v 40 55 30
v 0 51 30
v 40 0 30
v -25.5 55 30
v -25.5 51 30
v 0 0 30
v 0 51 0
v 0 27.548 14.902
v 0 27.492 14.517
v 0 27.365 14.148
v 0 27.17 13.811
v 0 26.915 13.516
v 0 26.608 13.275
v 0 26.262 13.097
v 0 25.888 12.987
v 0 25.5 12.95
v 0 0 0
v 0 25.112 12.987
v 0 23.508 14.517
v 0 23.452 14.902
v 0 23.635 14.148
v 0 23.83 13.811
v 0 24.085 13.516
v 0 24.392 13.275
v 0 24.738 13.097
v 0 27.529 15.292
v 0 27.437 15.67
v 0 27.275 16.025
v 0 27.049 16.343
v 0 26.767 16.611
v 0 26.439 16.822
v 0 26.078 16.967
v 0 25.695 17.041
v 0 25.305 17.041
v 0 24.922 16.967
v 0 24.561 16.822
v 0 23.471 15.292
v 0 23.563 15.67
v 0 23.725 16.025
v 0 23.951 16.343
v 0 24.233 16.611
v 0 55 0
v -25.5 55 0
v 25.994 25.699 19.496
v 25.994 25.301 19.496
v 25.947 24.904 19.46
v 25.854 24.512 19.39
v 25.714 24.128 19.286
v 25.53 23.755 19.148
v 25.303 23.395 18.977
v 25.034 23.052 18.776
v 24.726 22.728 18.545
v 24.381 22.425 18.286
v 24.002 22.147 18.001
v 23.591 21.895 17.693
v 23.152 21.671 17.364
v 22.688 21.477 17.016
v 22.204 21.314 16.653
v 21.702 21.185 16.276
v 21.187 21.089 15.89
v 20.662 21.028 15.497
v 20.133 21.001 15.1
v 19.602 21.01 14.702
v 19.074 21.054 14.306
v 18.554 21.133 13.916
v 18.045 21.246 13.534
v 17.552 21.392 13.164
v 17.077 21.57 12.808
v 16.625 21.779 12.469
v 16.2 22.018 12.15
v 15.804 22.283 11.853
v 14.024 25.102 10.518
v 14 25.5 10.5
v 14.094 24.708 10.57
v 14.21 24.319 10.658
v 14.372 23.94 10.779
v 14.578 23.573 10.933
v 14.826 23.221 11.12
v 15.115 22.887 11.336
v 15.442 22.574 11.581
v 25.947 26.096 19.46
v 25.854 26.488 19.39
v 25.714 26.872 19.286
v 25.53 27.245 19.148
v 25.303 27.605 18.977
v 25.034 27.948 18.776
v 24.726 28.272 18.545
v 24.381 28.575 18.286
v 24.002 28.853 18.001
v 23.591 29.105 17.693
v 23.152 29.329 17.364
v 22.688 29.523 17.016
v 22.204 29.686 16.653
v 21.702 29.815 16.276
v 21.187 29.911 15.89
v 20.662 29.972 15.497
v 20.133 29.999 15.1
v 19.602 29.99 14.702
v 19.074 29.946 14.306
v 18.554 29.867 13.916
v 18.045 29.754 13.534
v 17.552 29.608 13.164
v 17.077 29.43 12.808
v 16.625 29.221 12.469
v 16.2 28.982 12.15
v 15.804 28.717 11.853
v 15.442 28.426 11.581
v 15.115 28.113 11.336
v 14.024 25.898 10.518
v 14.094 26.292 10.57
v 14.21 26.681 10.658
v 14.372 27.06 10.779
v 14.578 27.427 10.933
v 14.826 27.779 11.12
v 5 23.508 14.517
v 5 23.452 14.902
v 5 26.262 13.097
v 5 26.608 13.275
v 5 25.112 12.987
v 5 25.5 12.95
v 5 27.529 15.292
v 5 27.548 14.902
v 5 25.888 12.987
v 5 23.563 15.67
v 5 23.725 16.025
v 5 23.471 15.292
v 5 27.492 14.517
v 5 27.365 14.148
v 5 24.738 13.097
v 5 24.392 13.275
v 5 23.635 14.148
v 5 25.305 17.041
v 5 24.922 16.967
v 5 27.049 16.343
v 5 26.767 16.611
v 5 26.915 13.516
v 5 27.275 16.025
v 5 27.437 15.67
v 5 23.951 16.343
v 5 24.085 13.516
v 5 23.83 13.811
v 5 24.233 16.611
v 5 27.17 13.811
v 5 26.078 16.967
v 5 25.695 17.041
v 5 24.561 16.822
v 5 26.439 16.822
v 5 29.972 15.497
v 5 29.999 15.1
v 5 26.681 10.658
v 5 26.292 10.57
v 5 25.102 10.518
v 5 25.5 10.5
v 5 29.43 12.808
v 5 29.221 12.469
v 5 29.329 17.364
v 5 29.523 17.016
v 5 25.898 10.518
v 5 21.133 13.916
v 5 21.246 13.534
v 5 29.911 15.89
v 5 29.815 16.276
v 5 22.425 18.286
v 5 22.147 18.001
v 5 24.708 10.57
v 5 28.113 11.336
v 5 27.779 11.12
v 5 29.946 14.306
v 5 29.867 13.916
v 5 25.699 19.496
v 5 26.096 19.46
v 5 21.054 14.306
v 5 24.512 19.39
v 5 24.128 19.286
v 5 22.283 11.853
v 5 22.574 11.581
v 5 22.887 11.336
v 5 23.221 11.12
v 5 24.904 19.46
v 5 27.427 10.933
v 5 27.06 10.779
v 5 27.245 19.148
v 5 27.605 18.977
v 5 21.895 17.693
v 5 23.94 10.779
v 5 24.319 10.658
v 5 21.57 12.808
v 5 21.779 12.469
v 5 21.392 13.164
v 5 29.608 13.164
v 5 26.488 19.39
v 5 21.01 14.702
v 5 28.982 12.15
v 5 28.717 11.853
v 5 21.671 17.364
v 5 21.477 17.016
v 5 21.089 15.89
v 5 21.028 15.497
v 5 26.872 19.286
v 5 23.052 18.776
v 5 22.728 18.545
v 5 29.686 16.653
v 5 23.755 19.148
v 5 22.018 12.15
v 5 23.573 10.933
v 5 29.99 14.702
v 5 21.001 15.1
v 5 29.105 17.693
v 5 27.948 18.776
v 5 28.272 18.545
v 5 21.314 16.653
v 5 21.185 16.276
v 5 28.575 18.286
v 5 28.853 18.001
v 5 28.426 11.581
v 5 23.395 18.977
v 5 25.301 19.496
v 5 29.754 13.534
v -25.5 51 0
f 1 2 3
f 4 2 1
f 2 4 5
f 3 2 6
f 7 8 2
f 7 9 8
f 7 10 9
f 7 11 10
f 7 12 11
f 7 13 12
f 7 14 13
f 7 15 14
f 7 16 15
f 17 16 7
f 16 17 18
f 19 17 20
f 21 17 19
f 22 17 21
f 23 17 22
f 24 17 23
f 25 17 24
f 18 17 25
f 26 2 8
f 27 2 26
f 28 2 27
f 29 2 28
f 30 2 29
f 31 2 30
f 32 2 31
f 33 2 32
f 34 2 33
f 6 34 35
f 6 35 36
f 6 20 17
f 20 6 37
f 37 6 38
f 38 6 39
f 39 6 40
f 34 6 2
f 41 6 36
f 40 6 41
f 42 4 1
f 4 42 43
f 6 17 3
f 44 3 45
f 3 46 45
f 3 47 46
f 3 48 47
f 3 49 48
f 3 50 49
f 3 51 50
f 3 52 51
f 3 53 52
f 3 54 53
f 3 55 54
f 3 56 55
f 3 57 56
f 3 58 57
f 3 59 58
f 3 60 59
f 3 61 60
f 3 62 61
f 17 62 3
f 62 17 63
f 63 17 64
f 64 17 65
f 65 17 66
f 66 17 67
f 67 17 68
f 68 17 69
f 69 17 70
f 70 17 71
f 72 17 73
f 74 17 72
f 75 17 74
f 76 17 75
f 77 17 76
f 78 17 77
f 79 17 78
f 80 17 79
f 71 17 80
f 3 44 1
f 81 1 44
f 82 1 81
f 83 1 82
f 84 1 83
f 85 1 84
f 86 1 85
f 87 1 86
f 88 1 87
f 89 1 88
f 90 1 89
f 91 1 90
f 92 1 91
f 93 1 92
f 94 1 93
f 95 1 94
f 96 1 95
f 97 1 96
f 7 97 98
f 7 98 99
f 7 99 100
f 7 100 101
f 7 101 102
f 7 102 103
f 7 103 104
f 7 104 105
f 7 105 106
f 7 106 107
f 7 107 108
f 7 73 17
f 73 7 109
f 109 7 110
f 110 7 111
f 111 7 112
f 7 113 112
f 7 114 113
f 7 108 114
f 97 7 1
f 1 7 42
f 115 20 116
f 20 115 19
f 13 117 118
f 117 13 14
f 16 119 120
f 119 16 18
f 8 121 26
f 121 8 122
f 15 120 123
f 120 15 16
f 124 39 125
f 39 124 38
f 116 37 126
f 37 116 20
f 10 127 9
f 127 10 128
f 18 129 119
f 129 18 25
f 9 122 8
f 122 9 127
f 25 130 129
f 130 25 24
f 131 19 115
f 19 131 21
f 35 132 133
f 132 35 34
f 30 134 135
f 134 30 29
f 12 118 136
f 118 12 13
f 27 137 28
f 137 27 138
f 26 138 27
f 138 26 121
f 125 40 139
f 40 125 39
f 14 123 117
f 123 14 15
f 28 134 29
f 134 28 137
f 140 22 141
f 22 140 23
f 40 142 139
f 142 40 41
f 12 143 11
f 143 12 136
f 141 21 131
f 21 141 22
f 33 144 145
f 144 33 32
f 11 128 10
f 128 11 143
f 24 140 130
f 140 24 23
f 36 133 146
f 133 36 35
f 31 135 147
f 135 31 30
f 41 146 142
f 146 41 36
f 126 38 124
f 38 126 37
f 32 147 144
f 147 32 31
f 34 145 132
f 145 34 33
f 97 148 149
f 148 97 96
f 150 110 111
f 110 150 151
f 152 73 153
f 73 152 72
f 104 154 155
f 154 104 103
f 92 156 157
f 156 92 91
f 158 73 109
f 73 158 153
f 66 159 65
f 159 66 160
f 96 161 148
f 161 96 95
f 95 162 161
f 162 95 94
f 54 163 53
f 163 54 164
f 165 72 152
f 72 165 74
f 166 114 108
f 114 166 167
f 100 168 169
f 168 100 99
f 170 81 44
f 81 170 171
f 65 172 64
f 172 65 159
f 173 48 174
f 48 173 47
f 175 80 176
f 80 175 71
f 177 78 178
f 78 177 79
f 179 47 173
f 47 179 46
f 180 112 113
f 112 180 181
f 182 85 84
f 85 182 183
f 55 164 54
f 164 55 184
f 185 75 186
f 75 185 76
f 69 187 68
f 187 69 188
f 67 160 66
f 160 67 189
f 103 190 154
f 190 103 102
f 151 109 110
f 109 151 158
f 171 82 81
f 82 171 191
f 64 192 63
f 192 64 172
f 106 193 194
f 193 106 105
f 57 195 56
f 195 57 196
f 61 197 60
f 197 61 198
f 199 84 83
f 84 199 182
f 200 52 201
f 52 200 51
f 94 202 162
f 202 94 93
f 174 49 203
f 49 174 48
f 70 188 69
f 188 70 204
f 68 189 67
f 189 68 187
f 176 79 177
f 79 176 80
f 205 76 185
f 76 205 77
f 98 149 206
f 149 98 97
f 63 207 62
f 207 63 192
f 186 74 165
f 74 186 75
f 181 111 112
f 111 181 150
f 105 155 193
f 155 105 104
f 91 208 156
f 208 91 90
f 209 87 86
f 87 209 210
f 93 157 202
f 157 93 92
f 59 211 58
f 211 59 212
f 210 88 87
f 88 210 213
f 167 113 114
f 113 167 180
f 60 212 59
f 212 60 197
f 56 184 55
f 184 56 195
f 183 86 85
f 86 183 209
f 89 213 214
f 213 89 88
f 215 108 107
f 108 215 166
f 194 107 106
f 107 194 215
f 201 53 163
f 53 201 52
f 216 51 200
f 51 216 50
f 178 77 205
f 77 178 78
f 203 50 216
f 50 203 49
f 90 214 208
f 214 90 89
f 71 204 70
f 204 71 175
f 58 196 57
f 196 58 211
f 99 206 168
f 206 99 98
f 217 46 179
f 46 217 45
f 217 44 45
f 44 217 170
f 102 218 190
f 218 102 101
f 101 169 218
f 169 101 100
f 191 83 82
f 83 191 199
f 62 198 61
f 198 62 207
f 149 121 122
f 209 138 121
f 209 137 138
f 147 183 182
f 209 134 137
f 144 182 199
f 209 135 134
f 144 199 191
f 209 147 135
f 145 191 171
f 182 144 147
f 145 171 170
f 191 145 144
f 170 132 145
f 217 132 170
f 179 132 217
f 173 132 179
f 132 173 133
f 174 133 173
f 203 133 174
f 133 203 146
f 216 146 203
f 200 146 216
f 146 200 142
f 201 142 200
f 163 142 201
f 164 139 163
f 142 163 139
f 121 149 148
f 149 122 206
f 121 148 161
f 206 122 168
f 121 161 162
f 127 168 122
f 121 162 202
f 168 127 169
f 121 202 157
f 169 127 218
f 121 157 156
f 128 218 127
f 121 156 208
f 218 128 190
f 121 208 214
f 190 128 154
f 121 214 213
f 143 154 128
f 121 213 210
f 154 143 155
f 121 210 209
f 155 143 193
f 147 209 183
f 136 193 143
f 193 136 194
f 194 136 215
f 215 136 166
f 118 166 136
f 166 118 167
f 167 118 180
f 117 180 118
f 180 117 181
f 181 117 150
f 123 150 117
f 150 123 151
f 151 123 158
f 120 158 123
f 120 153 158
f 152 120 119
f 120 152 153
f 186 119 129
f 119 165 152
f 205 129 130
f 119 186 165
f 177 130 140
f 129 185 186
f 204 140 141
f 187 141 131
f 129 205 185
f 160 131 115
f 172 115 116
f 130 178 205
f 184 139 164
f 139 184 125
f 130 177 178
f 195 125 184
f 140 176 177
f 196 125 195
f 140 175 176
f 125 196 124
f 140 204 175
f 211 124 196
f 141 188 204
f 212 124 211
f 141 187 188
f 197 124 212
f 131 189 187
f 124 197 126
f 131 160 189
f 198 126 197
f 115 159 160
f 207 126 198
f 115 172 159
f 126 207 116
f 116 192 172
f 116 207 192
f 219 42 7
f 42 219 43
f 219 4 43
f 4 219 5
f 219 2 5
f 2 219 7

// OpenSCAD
$fa = 1;
$fs = 0.4;

/* Ikea Data */
leg_width = 51.00; // Assumes that width and length are equal

/* Server data */
sup_length = 40.00; // This might need to be checked...
sup_height = 30.00; // This as well
sup_wall_thick = 4.00;

/* Screw data */
hole_diam = 9.00/2; // Radius...
hole_thick = 5.00;
screw_diam = 4.10/2; // Radius...


//mirror([1, 0, 0])
union() {
    /* Wedge */
    difference () {
        difference () {
            cube([sup_length, leg_width+sup_wall_thick, sup_height]);
            rotate([0, -atan(sup_height/sup_length), 0]) translate ([0, -leg_width/2, -sup_height]) cube([sup_length*2, leg_width*2, sup_height], center=false);
        }
        /* Screw hole */
        translate([0, leg_width/2.00, sup_height/2.00]) rotate([0, 90, 0]) cylinder(h=sup_length*3, r=screw_diam, center=true);
        translate([hole_thick, leg_width/2.00, sup_height/2.00]) rotate([0, 90, 0]) cylinder(h=sup_length*3, r=hole_diam);
    }
    /* Support wall */
    translate([-leg_width*0.5, leg_width, 0]) cube([leg_width/2, sup_wall_thick, sup_height]);
}
